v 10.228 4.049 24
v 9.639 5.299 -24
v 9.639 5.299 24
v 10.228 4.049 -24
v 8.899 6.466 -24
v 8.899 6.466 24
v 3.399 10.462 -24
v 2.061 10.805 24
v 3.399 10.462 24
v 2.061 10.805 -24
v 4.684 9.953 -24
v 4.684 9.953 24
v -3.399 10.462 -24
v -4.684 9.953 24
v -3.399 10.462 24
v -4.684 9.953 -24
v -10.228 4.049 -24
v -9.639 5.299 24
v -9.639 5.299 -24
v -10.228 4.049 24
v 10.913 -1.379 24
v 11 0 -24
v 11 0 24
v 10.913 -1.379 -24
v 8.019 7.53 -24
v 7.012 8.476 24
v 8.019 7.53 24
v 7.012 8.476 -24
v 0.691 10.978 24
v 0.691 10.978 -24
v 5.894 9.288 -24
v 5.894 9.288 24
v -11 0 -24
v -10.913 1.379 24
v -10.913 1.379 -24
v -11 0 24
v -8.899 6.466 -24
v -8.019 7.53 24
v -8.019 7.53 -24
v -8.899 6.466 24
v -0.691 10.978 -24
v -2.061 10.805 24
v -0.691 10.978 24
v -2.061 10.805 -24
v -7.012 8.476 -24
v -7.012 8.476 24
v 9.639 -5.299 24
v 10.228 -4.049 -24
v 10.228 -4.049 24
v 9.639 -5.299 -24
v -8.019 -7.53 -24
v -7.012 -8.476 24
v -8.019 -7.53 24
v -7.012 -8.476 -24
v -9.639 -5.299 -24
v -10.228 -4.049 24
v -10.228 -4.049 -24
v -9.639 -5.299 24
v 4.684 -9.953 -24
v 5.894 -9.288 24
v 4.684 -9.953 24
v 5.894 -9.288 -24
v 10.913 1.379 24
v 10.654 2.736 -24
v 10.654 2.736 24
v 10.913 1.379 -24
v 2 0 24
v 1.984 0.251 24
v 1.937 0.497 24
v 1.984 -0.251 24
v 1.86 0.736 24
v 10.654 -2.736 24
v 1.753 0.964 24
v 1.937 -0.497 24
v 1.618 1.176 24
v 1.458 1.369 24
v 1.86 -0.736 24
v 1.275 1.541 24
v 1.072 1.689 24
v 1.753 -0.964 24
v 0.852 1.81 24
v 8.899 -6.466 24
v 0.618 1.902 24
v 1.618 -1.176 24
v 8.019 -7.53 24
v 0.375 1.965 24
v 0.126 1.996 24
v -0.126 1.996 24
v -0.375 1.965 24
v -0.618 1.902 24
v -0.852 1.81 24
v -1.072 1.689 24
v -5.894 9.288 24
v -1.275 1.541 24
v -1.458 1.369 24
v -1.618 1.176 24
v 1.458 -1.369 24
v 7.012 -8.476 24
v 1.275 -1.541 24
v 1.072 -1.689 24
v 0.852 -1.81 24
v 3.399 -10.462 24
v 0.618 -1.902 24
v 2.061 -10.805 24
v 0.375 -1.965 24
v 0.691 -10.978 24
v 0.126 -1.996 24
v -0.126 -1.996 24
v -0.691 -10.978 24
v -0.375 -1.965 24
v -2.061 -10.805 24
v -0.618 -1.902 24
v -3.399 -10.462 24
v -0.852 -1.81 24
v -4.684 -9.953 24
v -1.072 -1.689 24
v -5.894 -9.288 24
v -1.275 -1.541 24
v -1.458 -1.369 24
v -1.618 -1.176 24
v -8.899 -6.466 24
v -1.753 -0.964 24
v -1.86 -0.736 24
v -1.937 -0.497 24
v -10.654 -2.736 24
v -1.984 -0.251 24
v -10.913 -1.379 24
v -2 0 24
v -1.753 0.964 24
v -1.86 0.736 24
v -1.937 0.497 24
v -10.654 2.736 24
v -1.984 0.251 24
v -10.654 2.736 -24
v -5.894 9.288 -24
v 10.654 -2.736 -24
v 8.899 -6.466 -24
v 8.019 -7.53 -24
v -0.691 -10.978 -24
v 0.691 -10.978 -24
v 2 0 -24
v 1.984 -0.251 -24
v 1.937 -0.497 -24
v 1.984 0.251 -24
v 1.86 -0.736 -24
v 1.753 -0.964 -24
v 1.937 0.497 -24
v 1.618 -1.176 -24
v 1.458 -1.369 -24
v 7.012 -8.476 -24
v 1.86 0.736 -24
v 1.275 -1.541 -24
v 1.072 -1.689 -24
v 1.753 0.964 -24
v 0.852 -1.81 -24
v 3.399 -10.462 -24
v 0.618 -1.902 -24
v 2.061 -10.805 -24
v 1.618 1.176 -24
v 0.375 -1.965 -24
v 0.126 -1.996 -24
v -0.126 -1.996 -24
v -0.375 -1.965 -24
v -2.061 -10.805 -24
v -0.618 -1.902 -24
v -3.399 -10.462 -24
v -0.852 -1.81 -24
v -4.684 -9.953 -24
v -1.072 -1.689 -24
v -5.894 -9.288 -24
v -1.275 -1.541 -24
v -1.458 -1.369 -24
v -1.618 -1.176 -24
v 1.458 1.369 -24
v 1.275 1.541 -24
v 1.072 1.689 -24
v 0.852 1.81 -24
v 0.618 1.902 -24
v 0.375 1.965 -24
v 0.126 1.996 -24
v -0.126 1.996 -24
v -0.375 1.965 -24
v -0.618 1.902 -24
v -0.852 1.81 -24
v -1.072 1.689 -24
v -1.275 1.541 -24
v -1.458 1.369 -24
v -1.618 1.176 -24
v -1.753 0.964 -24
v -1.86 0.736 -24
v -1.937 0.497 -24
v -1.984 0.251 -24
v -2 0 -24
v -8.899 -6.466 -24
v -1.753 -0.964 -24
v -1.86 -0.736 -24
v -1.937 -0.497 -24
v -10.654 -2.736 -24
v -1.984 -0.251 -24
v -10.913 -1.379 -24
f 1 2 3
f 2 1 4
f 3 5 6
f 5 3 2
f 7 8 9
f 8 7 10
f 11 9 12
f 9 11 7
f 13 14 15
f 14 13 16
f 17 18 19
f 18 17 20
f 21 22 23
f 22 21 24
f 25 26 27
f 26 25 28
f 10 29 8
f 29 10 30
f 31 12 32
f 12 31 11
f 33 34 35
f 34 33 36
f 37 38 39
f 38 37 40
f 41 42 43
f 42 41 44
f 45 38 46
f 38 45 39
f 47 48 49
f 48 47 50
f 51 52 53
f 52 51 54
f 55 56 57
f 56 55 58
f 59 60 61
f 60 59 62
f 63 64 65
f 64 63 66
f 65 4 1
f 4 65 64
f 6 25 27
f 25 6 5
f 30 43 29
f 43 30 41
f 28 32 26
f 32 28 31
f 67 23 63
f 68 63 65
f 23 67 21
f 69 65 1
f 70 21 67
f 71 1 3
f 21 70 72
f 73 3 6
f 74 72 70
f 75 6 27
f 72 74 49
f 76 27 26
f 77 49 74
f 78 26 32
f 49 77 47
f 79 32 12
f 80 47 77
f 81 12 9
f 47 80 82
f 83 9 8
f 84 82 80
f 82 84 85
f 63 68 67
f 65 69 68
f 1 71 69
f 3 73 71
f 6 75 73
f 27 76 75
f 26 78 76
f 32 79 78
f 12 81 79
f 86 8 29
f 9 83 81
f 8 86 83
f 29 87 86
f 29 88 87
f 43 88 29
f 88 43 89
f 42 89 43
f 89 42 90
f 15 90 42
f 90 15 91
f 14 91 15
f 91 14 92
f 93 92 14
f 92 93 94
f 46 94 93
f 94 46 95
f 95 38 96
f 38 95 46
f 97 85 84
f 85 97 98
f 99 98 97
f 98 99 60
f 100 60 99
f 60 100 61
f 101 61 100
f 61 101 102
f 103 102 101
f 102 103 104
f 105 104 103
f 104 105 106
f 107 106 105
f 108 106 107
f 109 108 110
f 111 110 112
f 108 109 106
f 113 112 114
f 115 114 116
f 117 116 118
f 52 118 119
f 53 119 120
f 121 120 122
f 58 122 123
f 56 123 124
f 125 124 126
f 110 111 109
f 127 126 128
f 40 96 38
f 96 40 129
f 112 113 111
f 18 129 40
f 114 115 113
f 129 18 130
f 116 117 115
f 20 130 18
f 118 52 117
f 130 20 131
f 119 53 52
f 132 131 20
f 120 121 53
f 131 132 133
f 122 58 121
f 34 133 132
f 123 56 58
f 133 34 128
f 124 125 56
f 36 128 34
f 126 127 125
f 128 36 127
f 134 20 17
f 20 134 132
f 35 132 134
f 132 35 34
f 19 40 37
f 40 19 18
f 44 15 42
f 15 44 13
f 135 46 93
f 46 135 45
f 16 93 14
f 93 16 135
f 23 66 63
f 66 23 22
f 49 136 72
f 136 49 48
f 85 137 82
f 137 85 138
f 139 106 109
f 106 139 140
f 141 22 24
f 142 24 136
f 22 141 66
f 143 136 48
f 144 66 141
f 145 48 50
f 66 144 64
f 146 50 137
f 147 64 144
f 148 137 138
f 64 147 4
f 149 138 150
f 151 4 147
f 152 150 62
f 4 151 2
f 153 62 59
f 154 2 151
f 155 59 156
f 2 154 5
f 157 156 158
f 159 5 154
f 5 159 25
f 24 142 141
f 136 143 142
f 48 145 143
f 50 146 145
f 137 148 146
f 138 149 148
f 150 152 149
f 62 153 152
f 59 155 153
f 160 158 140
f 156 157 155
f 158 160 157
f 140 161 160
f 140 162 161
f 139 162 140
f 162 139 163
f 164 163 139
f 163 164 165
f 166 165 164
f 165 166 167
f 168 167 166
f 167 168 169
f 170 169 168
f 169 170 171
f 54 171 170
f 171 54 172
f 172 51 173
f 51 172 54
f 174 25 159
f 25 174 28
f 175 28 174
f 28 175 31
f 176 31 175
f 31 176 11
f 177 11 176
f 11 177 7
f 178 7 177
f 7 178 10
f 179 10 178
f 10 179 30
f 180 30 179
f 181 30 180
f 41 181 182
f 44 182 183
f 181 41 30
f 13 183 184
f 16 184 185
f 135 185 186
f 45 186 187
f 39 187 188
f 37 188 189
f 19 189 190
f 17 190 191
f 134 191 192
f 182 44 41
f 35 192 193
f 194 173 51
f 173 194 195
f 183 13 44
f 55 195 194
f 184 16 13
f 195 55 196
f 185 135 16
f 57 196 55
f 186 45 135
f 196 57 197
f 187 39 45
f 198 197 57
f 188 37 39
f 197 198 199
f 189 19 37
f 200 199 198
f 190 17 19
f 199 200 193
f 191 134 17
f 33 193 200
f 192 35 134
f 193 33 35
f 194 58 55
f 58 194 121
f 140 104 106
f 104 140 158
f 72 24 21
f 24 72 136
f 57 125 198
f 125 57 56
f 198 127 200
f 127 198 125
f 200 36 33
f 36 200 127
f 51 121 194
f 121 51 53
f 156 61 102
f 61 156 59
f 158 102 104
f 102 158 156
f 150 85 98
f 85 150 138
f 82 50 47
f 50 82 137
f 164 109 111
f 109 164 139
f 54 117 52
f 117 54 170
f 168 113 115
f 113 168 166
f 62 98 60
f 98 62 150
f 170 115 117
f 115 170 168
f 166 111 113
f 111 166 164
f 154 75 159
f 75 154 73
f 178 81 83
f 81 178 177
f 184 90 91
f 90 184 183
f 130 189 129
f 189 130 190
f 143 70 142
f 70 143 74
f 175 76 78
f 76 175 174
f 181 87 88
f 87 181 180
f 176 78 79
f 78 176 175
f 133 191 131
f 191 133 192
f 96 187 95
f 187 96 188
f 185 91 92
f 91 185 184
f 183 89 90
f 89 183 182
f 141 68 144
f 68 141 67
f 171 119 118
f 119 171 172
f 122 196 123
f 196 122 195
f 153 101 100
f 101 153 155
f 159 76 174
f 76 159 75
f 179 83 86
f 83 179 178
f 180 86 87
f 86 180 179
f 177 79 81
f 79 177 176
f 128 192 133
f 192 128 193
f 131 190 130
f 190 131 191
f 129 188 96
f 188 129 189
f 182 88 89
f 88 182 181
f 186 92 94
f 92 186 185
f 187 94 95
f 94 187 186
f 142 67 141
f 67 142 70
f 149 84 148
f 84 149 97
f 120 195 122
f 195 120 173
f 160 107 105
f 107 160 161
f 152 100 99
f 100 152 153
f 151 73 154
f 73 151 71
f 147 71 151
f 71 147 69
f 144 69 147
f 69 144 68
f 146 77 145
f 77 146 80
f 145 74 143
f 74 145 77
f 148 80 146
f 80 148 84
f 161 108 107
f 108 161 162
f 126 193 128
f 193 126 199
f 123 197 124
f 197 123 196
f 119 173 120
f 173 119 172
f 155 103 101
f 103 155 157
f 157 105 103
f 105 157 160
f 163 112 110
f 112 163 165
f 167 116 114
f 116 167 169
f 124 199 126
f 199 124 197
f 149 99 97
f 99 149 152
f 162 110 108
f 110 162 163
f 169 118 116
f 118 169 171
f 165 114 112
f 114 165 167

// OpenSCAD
$fn = 50;


difference() {
	union() {
		translate(v = [0, 0, -24.0000000000]) {
			cylinder(h = 48, r = 11.0000000000);
		}
	}
	union() {
		translate(v = [0, 0, -100.0000000000]) {
			cylinder(h = 200, r = 2);
		}
	}
}
